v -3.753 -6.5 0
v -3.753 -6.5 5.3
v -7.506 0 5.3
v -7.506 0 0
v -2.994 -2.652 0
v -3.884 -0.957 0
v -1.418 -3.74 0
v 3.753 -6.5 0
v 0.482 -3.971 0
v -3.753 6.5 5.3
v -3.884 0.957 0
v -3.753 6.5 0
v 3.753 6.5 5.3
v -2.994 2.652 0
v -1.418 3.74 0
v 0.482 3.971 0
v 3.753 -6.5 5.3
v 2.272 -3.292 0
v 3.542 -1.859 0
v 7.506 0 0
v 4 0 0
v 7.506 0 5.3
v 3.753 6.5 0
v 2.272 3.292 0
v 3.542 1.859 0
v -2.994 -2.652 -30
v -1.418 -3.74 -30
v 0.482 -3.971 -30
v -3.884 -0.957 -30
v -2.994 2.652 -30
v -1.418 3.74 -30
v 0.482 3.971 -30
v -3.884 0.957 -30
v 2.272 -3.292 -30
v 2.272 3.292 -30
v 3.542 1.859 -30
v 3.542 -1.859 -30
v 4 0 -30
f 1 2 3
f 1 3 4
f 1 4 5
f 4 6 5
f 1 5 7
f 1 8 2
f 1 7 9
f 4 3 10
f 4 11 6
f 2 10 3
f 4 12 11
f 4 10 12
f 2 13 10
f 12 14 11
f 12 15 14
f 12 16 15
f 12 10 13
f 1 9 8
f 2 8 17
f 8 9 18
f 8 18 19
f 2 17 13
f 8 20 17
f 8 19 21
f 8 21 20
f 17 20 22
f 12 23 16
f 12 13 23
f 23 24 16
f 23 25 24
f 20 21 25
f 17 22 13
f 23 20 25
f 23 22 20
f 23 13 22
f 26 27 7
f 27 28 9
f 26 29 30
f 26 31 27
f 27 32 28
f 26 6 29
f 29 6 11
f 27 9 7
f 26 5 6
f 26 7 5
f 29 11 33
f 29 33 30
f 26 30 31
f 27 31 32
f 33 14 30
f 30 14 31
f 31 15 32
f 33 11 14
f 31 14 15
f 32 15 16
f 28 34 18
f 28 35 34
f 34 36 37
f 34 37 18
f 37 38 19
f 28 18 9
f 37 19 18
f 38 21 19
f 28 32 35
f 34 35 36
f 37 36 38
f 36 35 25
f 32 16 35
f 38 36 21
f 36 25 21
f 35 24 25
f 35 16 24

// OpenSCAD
d_hex = 26/sqrt(3);
h_head = 5.3;
d_shaft = 8;
l_shaft = 30;

union() {
    cylinder(d = d_hex, h = h_head, $fn = 6);
    translate([0, 0, -l_shaft])
        cylinder(d = d_shaft, h = l_shaft);
}
